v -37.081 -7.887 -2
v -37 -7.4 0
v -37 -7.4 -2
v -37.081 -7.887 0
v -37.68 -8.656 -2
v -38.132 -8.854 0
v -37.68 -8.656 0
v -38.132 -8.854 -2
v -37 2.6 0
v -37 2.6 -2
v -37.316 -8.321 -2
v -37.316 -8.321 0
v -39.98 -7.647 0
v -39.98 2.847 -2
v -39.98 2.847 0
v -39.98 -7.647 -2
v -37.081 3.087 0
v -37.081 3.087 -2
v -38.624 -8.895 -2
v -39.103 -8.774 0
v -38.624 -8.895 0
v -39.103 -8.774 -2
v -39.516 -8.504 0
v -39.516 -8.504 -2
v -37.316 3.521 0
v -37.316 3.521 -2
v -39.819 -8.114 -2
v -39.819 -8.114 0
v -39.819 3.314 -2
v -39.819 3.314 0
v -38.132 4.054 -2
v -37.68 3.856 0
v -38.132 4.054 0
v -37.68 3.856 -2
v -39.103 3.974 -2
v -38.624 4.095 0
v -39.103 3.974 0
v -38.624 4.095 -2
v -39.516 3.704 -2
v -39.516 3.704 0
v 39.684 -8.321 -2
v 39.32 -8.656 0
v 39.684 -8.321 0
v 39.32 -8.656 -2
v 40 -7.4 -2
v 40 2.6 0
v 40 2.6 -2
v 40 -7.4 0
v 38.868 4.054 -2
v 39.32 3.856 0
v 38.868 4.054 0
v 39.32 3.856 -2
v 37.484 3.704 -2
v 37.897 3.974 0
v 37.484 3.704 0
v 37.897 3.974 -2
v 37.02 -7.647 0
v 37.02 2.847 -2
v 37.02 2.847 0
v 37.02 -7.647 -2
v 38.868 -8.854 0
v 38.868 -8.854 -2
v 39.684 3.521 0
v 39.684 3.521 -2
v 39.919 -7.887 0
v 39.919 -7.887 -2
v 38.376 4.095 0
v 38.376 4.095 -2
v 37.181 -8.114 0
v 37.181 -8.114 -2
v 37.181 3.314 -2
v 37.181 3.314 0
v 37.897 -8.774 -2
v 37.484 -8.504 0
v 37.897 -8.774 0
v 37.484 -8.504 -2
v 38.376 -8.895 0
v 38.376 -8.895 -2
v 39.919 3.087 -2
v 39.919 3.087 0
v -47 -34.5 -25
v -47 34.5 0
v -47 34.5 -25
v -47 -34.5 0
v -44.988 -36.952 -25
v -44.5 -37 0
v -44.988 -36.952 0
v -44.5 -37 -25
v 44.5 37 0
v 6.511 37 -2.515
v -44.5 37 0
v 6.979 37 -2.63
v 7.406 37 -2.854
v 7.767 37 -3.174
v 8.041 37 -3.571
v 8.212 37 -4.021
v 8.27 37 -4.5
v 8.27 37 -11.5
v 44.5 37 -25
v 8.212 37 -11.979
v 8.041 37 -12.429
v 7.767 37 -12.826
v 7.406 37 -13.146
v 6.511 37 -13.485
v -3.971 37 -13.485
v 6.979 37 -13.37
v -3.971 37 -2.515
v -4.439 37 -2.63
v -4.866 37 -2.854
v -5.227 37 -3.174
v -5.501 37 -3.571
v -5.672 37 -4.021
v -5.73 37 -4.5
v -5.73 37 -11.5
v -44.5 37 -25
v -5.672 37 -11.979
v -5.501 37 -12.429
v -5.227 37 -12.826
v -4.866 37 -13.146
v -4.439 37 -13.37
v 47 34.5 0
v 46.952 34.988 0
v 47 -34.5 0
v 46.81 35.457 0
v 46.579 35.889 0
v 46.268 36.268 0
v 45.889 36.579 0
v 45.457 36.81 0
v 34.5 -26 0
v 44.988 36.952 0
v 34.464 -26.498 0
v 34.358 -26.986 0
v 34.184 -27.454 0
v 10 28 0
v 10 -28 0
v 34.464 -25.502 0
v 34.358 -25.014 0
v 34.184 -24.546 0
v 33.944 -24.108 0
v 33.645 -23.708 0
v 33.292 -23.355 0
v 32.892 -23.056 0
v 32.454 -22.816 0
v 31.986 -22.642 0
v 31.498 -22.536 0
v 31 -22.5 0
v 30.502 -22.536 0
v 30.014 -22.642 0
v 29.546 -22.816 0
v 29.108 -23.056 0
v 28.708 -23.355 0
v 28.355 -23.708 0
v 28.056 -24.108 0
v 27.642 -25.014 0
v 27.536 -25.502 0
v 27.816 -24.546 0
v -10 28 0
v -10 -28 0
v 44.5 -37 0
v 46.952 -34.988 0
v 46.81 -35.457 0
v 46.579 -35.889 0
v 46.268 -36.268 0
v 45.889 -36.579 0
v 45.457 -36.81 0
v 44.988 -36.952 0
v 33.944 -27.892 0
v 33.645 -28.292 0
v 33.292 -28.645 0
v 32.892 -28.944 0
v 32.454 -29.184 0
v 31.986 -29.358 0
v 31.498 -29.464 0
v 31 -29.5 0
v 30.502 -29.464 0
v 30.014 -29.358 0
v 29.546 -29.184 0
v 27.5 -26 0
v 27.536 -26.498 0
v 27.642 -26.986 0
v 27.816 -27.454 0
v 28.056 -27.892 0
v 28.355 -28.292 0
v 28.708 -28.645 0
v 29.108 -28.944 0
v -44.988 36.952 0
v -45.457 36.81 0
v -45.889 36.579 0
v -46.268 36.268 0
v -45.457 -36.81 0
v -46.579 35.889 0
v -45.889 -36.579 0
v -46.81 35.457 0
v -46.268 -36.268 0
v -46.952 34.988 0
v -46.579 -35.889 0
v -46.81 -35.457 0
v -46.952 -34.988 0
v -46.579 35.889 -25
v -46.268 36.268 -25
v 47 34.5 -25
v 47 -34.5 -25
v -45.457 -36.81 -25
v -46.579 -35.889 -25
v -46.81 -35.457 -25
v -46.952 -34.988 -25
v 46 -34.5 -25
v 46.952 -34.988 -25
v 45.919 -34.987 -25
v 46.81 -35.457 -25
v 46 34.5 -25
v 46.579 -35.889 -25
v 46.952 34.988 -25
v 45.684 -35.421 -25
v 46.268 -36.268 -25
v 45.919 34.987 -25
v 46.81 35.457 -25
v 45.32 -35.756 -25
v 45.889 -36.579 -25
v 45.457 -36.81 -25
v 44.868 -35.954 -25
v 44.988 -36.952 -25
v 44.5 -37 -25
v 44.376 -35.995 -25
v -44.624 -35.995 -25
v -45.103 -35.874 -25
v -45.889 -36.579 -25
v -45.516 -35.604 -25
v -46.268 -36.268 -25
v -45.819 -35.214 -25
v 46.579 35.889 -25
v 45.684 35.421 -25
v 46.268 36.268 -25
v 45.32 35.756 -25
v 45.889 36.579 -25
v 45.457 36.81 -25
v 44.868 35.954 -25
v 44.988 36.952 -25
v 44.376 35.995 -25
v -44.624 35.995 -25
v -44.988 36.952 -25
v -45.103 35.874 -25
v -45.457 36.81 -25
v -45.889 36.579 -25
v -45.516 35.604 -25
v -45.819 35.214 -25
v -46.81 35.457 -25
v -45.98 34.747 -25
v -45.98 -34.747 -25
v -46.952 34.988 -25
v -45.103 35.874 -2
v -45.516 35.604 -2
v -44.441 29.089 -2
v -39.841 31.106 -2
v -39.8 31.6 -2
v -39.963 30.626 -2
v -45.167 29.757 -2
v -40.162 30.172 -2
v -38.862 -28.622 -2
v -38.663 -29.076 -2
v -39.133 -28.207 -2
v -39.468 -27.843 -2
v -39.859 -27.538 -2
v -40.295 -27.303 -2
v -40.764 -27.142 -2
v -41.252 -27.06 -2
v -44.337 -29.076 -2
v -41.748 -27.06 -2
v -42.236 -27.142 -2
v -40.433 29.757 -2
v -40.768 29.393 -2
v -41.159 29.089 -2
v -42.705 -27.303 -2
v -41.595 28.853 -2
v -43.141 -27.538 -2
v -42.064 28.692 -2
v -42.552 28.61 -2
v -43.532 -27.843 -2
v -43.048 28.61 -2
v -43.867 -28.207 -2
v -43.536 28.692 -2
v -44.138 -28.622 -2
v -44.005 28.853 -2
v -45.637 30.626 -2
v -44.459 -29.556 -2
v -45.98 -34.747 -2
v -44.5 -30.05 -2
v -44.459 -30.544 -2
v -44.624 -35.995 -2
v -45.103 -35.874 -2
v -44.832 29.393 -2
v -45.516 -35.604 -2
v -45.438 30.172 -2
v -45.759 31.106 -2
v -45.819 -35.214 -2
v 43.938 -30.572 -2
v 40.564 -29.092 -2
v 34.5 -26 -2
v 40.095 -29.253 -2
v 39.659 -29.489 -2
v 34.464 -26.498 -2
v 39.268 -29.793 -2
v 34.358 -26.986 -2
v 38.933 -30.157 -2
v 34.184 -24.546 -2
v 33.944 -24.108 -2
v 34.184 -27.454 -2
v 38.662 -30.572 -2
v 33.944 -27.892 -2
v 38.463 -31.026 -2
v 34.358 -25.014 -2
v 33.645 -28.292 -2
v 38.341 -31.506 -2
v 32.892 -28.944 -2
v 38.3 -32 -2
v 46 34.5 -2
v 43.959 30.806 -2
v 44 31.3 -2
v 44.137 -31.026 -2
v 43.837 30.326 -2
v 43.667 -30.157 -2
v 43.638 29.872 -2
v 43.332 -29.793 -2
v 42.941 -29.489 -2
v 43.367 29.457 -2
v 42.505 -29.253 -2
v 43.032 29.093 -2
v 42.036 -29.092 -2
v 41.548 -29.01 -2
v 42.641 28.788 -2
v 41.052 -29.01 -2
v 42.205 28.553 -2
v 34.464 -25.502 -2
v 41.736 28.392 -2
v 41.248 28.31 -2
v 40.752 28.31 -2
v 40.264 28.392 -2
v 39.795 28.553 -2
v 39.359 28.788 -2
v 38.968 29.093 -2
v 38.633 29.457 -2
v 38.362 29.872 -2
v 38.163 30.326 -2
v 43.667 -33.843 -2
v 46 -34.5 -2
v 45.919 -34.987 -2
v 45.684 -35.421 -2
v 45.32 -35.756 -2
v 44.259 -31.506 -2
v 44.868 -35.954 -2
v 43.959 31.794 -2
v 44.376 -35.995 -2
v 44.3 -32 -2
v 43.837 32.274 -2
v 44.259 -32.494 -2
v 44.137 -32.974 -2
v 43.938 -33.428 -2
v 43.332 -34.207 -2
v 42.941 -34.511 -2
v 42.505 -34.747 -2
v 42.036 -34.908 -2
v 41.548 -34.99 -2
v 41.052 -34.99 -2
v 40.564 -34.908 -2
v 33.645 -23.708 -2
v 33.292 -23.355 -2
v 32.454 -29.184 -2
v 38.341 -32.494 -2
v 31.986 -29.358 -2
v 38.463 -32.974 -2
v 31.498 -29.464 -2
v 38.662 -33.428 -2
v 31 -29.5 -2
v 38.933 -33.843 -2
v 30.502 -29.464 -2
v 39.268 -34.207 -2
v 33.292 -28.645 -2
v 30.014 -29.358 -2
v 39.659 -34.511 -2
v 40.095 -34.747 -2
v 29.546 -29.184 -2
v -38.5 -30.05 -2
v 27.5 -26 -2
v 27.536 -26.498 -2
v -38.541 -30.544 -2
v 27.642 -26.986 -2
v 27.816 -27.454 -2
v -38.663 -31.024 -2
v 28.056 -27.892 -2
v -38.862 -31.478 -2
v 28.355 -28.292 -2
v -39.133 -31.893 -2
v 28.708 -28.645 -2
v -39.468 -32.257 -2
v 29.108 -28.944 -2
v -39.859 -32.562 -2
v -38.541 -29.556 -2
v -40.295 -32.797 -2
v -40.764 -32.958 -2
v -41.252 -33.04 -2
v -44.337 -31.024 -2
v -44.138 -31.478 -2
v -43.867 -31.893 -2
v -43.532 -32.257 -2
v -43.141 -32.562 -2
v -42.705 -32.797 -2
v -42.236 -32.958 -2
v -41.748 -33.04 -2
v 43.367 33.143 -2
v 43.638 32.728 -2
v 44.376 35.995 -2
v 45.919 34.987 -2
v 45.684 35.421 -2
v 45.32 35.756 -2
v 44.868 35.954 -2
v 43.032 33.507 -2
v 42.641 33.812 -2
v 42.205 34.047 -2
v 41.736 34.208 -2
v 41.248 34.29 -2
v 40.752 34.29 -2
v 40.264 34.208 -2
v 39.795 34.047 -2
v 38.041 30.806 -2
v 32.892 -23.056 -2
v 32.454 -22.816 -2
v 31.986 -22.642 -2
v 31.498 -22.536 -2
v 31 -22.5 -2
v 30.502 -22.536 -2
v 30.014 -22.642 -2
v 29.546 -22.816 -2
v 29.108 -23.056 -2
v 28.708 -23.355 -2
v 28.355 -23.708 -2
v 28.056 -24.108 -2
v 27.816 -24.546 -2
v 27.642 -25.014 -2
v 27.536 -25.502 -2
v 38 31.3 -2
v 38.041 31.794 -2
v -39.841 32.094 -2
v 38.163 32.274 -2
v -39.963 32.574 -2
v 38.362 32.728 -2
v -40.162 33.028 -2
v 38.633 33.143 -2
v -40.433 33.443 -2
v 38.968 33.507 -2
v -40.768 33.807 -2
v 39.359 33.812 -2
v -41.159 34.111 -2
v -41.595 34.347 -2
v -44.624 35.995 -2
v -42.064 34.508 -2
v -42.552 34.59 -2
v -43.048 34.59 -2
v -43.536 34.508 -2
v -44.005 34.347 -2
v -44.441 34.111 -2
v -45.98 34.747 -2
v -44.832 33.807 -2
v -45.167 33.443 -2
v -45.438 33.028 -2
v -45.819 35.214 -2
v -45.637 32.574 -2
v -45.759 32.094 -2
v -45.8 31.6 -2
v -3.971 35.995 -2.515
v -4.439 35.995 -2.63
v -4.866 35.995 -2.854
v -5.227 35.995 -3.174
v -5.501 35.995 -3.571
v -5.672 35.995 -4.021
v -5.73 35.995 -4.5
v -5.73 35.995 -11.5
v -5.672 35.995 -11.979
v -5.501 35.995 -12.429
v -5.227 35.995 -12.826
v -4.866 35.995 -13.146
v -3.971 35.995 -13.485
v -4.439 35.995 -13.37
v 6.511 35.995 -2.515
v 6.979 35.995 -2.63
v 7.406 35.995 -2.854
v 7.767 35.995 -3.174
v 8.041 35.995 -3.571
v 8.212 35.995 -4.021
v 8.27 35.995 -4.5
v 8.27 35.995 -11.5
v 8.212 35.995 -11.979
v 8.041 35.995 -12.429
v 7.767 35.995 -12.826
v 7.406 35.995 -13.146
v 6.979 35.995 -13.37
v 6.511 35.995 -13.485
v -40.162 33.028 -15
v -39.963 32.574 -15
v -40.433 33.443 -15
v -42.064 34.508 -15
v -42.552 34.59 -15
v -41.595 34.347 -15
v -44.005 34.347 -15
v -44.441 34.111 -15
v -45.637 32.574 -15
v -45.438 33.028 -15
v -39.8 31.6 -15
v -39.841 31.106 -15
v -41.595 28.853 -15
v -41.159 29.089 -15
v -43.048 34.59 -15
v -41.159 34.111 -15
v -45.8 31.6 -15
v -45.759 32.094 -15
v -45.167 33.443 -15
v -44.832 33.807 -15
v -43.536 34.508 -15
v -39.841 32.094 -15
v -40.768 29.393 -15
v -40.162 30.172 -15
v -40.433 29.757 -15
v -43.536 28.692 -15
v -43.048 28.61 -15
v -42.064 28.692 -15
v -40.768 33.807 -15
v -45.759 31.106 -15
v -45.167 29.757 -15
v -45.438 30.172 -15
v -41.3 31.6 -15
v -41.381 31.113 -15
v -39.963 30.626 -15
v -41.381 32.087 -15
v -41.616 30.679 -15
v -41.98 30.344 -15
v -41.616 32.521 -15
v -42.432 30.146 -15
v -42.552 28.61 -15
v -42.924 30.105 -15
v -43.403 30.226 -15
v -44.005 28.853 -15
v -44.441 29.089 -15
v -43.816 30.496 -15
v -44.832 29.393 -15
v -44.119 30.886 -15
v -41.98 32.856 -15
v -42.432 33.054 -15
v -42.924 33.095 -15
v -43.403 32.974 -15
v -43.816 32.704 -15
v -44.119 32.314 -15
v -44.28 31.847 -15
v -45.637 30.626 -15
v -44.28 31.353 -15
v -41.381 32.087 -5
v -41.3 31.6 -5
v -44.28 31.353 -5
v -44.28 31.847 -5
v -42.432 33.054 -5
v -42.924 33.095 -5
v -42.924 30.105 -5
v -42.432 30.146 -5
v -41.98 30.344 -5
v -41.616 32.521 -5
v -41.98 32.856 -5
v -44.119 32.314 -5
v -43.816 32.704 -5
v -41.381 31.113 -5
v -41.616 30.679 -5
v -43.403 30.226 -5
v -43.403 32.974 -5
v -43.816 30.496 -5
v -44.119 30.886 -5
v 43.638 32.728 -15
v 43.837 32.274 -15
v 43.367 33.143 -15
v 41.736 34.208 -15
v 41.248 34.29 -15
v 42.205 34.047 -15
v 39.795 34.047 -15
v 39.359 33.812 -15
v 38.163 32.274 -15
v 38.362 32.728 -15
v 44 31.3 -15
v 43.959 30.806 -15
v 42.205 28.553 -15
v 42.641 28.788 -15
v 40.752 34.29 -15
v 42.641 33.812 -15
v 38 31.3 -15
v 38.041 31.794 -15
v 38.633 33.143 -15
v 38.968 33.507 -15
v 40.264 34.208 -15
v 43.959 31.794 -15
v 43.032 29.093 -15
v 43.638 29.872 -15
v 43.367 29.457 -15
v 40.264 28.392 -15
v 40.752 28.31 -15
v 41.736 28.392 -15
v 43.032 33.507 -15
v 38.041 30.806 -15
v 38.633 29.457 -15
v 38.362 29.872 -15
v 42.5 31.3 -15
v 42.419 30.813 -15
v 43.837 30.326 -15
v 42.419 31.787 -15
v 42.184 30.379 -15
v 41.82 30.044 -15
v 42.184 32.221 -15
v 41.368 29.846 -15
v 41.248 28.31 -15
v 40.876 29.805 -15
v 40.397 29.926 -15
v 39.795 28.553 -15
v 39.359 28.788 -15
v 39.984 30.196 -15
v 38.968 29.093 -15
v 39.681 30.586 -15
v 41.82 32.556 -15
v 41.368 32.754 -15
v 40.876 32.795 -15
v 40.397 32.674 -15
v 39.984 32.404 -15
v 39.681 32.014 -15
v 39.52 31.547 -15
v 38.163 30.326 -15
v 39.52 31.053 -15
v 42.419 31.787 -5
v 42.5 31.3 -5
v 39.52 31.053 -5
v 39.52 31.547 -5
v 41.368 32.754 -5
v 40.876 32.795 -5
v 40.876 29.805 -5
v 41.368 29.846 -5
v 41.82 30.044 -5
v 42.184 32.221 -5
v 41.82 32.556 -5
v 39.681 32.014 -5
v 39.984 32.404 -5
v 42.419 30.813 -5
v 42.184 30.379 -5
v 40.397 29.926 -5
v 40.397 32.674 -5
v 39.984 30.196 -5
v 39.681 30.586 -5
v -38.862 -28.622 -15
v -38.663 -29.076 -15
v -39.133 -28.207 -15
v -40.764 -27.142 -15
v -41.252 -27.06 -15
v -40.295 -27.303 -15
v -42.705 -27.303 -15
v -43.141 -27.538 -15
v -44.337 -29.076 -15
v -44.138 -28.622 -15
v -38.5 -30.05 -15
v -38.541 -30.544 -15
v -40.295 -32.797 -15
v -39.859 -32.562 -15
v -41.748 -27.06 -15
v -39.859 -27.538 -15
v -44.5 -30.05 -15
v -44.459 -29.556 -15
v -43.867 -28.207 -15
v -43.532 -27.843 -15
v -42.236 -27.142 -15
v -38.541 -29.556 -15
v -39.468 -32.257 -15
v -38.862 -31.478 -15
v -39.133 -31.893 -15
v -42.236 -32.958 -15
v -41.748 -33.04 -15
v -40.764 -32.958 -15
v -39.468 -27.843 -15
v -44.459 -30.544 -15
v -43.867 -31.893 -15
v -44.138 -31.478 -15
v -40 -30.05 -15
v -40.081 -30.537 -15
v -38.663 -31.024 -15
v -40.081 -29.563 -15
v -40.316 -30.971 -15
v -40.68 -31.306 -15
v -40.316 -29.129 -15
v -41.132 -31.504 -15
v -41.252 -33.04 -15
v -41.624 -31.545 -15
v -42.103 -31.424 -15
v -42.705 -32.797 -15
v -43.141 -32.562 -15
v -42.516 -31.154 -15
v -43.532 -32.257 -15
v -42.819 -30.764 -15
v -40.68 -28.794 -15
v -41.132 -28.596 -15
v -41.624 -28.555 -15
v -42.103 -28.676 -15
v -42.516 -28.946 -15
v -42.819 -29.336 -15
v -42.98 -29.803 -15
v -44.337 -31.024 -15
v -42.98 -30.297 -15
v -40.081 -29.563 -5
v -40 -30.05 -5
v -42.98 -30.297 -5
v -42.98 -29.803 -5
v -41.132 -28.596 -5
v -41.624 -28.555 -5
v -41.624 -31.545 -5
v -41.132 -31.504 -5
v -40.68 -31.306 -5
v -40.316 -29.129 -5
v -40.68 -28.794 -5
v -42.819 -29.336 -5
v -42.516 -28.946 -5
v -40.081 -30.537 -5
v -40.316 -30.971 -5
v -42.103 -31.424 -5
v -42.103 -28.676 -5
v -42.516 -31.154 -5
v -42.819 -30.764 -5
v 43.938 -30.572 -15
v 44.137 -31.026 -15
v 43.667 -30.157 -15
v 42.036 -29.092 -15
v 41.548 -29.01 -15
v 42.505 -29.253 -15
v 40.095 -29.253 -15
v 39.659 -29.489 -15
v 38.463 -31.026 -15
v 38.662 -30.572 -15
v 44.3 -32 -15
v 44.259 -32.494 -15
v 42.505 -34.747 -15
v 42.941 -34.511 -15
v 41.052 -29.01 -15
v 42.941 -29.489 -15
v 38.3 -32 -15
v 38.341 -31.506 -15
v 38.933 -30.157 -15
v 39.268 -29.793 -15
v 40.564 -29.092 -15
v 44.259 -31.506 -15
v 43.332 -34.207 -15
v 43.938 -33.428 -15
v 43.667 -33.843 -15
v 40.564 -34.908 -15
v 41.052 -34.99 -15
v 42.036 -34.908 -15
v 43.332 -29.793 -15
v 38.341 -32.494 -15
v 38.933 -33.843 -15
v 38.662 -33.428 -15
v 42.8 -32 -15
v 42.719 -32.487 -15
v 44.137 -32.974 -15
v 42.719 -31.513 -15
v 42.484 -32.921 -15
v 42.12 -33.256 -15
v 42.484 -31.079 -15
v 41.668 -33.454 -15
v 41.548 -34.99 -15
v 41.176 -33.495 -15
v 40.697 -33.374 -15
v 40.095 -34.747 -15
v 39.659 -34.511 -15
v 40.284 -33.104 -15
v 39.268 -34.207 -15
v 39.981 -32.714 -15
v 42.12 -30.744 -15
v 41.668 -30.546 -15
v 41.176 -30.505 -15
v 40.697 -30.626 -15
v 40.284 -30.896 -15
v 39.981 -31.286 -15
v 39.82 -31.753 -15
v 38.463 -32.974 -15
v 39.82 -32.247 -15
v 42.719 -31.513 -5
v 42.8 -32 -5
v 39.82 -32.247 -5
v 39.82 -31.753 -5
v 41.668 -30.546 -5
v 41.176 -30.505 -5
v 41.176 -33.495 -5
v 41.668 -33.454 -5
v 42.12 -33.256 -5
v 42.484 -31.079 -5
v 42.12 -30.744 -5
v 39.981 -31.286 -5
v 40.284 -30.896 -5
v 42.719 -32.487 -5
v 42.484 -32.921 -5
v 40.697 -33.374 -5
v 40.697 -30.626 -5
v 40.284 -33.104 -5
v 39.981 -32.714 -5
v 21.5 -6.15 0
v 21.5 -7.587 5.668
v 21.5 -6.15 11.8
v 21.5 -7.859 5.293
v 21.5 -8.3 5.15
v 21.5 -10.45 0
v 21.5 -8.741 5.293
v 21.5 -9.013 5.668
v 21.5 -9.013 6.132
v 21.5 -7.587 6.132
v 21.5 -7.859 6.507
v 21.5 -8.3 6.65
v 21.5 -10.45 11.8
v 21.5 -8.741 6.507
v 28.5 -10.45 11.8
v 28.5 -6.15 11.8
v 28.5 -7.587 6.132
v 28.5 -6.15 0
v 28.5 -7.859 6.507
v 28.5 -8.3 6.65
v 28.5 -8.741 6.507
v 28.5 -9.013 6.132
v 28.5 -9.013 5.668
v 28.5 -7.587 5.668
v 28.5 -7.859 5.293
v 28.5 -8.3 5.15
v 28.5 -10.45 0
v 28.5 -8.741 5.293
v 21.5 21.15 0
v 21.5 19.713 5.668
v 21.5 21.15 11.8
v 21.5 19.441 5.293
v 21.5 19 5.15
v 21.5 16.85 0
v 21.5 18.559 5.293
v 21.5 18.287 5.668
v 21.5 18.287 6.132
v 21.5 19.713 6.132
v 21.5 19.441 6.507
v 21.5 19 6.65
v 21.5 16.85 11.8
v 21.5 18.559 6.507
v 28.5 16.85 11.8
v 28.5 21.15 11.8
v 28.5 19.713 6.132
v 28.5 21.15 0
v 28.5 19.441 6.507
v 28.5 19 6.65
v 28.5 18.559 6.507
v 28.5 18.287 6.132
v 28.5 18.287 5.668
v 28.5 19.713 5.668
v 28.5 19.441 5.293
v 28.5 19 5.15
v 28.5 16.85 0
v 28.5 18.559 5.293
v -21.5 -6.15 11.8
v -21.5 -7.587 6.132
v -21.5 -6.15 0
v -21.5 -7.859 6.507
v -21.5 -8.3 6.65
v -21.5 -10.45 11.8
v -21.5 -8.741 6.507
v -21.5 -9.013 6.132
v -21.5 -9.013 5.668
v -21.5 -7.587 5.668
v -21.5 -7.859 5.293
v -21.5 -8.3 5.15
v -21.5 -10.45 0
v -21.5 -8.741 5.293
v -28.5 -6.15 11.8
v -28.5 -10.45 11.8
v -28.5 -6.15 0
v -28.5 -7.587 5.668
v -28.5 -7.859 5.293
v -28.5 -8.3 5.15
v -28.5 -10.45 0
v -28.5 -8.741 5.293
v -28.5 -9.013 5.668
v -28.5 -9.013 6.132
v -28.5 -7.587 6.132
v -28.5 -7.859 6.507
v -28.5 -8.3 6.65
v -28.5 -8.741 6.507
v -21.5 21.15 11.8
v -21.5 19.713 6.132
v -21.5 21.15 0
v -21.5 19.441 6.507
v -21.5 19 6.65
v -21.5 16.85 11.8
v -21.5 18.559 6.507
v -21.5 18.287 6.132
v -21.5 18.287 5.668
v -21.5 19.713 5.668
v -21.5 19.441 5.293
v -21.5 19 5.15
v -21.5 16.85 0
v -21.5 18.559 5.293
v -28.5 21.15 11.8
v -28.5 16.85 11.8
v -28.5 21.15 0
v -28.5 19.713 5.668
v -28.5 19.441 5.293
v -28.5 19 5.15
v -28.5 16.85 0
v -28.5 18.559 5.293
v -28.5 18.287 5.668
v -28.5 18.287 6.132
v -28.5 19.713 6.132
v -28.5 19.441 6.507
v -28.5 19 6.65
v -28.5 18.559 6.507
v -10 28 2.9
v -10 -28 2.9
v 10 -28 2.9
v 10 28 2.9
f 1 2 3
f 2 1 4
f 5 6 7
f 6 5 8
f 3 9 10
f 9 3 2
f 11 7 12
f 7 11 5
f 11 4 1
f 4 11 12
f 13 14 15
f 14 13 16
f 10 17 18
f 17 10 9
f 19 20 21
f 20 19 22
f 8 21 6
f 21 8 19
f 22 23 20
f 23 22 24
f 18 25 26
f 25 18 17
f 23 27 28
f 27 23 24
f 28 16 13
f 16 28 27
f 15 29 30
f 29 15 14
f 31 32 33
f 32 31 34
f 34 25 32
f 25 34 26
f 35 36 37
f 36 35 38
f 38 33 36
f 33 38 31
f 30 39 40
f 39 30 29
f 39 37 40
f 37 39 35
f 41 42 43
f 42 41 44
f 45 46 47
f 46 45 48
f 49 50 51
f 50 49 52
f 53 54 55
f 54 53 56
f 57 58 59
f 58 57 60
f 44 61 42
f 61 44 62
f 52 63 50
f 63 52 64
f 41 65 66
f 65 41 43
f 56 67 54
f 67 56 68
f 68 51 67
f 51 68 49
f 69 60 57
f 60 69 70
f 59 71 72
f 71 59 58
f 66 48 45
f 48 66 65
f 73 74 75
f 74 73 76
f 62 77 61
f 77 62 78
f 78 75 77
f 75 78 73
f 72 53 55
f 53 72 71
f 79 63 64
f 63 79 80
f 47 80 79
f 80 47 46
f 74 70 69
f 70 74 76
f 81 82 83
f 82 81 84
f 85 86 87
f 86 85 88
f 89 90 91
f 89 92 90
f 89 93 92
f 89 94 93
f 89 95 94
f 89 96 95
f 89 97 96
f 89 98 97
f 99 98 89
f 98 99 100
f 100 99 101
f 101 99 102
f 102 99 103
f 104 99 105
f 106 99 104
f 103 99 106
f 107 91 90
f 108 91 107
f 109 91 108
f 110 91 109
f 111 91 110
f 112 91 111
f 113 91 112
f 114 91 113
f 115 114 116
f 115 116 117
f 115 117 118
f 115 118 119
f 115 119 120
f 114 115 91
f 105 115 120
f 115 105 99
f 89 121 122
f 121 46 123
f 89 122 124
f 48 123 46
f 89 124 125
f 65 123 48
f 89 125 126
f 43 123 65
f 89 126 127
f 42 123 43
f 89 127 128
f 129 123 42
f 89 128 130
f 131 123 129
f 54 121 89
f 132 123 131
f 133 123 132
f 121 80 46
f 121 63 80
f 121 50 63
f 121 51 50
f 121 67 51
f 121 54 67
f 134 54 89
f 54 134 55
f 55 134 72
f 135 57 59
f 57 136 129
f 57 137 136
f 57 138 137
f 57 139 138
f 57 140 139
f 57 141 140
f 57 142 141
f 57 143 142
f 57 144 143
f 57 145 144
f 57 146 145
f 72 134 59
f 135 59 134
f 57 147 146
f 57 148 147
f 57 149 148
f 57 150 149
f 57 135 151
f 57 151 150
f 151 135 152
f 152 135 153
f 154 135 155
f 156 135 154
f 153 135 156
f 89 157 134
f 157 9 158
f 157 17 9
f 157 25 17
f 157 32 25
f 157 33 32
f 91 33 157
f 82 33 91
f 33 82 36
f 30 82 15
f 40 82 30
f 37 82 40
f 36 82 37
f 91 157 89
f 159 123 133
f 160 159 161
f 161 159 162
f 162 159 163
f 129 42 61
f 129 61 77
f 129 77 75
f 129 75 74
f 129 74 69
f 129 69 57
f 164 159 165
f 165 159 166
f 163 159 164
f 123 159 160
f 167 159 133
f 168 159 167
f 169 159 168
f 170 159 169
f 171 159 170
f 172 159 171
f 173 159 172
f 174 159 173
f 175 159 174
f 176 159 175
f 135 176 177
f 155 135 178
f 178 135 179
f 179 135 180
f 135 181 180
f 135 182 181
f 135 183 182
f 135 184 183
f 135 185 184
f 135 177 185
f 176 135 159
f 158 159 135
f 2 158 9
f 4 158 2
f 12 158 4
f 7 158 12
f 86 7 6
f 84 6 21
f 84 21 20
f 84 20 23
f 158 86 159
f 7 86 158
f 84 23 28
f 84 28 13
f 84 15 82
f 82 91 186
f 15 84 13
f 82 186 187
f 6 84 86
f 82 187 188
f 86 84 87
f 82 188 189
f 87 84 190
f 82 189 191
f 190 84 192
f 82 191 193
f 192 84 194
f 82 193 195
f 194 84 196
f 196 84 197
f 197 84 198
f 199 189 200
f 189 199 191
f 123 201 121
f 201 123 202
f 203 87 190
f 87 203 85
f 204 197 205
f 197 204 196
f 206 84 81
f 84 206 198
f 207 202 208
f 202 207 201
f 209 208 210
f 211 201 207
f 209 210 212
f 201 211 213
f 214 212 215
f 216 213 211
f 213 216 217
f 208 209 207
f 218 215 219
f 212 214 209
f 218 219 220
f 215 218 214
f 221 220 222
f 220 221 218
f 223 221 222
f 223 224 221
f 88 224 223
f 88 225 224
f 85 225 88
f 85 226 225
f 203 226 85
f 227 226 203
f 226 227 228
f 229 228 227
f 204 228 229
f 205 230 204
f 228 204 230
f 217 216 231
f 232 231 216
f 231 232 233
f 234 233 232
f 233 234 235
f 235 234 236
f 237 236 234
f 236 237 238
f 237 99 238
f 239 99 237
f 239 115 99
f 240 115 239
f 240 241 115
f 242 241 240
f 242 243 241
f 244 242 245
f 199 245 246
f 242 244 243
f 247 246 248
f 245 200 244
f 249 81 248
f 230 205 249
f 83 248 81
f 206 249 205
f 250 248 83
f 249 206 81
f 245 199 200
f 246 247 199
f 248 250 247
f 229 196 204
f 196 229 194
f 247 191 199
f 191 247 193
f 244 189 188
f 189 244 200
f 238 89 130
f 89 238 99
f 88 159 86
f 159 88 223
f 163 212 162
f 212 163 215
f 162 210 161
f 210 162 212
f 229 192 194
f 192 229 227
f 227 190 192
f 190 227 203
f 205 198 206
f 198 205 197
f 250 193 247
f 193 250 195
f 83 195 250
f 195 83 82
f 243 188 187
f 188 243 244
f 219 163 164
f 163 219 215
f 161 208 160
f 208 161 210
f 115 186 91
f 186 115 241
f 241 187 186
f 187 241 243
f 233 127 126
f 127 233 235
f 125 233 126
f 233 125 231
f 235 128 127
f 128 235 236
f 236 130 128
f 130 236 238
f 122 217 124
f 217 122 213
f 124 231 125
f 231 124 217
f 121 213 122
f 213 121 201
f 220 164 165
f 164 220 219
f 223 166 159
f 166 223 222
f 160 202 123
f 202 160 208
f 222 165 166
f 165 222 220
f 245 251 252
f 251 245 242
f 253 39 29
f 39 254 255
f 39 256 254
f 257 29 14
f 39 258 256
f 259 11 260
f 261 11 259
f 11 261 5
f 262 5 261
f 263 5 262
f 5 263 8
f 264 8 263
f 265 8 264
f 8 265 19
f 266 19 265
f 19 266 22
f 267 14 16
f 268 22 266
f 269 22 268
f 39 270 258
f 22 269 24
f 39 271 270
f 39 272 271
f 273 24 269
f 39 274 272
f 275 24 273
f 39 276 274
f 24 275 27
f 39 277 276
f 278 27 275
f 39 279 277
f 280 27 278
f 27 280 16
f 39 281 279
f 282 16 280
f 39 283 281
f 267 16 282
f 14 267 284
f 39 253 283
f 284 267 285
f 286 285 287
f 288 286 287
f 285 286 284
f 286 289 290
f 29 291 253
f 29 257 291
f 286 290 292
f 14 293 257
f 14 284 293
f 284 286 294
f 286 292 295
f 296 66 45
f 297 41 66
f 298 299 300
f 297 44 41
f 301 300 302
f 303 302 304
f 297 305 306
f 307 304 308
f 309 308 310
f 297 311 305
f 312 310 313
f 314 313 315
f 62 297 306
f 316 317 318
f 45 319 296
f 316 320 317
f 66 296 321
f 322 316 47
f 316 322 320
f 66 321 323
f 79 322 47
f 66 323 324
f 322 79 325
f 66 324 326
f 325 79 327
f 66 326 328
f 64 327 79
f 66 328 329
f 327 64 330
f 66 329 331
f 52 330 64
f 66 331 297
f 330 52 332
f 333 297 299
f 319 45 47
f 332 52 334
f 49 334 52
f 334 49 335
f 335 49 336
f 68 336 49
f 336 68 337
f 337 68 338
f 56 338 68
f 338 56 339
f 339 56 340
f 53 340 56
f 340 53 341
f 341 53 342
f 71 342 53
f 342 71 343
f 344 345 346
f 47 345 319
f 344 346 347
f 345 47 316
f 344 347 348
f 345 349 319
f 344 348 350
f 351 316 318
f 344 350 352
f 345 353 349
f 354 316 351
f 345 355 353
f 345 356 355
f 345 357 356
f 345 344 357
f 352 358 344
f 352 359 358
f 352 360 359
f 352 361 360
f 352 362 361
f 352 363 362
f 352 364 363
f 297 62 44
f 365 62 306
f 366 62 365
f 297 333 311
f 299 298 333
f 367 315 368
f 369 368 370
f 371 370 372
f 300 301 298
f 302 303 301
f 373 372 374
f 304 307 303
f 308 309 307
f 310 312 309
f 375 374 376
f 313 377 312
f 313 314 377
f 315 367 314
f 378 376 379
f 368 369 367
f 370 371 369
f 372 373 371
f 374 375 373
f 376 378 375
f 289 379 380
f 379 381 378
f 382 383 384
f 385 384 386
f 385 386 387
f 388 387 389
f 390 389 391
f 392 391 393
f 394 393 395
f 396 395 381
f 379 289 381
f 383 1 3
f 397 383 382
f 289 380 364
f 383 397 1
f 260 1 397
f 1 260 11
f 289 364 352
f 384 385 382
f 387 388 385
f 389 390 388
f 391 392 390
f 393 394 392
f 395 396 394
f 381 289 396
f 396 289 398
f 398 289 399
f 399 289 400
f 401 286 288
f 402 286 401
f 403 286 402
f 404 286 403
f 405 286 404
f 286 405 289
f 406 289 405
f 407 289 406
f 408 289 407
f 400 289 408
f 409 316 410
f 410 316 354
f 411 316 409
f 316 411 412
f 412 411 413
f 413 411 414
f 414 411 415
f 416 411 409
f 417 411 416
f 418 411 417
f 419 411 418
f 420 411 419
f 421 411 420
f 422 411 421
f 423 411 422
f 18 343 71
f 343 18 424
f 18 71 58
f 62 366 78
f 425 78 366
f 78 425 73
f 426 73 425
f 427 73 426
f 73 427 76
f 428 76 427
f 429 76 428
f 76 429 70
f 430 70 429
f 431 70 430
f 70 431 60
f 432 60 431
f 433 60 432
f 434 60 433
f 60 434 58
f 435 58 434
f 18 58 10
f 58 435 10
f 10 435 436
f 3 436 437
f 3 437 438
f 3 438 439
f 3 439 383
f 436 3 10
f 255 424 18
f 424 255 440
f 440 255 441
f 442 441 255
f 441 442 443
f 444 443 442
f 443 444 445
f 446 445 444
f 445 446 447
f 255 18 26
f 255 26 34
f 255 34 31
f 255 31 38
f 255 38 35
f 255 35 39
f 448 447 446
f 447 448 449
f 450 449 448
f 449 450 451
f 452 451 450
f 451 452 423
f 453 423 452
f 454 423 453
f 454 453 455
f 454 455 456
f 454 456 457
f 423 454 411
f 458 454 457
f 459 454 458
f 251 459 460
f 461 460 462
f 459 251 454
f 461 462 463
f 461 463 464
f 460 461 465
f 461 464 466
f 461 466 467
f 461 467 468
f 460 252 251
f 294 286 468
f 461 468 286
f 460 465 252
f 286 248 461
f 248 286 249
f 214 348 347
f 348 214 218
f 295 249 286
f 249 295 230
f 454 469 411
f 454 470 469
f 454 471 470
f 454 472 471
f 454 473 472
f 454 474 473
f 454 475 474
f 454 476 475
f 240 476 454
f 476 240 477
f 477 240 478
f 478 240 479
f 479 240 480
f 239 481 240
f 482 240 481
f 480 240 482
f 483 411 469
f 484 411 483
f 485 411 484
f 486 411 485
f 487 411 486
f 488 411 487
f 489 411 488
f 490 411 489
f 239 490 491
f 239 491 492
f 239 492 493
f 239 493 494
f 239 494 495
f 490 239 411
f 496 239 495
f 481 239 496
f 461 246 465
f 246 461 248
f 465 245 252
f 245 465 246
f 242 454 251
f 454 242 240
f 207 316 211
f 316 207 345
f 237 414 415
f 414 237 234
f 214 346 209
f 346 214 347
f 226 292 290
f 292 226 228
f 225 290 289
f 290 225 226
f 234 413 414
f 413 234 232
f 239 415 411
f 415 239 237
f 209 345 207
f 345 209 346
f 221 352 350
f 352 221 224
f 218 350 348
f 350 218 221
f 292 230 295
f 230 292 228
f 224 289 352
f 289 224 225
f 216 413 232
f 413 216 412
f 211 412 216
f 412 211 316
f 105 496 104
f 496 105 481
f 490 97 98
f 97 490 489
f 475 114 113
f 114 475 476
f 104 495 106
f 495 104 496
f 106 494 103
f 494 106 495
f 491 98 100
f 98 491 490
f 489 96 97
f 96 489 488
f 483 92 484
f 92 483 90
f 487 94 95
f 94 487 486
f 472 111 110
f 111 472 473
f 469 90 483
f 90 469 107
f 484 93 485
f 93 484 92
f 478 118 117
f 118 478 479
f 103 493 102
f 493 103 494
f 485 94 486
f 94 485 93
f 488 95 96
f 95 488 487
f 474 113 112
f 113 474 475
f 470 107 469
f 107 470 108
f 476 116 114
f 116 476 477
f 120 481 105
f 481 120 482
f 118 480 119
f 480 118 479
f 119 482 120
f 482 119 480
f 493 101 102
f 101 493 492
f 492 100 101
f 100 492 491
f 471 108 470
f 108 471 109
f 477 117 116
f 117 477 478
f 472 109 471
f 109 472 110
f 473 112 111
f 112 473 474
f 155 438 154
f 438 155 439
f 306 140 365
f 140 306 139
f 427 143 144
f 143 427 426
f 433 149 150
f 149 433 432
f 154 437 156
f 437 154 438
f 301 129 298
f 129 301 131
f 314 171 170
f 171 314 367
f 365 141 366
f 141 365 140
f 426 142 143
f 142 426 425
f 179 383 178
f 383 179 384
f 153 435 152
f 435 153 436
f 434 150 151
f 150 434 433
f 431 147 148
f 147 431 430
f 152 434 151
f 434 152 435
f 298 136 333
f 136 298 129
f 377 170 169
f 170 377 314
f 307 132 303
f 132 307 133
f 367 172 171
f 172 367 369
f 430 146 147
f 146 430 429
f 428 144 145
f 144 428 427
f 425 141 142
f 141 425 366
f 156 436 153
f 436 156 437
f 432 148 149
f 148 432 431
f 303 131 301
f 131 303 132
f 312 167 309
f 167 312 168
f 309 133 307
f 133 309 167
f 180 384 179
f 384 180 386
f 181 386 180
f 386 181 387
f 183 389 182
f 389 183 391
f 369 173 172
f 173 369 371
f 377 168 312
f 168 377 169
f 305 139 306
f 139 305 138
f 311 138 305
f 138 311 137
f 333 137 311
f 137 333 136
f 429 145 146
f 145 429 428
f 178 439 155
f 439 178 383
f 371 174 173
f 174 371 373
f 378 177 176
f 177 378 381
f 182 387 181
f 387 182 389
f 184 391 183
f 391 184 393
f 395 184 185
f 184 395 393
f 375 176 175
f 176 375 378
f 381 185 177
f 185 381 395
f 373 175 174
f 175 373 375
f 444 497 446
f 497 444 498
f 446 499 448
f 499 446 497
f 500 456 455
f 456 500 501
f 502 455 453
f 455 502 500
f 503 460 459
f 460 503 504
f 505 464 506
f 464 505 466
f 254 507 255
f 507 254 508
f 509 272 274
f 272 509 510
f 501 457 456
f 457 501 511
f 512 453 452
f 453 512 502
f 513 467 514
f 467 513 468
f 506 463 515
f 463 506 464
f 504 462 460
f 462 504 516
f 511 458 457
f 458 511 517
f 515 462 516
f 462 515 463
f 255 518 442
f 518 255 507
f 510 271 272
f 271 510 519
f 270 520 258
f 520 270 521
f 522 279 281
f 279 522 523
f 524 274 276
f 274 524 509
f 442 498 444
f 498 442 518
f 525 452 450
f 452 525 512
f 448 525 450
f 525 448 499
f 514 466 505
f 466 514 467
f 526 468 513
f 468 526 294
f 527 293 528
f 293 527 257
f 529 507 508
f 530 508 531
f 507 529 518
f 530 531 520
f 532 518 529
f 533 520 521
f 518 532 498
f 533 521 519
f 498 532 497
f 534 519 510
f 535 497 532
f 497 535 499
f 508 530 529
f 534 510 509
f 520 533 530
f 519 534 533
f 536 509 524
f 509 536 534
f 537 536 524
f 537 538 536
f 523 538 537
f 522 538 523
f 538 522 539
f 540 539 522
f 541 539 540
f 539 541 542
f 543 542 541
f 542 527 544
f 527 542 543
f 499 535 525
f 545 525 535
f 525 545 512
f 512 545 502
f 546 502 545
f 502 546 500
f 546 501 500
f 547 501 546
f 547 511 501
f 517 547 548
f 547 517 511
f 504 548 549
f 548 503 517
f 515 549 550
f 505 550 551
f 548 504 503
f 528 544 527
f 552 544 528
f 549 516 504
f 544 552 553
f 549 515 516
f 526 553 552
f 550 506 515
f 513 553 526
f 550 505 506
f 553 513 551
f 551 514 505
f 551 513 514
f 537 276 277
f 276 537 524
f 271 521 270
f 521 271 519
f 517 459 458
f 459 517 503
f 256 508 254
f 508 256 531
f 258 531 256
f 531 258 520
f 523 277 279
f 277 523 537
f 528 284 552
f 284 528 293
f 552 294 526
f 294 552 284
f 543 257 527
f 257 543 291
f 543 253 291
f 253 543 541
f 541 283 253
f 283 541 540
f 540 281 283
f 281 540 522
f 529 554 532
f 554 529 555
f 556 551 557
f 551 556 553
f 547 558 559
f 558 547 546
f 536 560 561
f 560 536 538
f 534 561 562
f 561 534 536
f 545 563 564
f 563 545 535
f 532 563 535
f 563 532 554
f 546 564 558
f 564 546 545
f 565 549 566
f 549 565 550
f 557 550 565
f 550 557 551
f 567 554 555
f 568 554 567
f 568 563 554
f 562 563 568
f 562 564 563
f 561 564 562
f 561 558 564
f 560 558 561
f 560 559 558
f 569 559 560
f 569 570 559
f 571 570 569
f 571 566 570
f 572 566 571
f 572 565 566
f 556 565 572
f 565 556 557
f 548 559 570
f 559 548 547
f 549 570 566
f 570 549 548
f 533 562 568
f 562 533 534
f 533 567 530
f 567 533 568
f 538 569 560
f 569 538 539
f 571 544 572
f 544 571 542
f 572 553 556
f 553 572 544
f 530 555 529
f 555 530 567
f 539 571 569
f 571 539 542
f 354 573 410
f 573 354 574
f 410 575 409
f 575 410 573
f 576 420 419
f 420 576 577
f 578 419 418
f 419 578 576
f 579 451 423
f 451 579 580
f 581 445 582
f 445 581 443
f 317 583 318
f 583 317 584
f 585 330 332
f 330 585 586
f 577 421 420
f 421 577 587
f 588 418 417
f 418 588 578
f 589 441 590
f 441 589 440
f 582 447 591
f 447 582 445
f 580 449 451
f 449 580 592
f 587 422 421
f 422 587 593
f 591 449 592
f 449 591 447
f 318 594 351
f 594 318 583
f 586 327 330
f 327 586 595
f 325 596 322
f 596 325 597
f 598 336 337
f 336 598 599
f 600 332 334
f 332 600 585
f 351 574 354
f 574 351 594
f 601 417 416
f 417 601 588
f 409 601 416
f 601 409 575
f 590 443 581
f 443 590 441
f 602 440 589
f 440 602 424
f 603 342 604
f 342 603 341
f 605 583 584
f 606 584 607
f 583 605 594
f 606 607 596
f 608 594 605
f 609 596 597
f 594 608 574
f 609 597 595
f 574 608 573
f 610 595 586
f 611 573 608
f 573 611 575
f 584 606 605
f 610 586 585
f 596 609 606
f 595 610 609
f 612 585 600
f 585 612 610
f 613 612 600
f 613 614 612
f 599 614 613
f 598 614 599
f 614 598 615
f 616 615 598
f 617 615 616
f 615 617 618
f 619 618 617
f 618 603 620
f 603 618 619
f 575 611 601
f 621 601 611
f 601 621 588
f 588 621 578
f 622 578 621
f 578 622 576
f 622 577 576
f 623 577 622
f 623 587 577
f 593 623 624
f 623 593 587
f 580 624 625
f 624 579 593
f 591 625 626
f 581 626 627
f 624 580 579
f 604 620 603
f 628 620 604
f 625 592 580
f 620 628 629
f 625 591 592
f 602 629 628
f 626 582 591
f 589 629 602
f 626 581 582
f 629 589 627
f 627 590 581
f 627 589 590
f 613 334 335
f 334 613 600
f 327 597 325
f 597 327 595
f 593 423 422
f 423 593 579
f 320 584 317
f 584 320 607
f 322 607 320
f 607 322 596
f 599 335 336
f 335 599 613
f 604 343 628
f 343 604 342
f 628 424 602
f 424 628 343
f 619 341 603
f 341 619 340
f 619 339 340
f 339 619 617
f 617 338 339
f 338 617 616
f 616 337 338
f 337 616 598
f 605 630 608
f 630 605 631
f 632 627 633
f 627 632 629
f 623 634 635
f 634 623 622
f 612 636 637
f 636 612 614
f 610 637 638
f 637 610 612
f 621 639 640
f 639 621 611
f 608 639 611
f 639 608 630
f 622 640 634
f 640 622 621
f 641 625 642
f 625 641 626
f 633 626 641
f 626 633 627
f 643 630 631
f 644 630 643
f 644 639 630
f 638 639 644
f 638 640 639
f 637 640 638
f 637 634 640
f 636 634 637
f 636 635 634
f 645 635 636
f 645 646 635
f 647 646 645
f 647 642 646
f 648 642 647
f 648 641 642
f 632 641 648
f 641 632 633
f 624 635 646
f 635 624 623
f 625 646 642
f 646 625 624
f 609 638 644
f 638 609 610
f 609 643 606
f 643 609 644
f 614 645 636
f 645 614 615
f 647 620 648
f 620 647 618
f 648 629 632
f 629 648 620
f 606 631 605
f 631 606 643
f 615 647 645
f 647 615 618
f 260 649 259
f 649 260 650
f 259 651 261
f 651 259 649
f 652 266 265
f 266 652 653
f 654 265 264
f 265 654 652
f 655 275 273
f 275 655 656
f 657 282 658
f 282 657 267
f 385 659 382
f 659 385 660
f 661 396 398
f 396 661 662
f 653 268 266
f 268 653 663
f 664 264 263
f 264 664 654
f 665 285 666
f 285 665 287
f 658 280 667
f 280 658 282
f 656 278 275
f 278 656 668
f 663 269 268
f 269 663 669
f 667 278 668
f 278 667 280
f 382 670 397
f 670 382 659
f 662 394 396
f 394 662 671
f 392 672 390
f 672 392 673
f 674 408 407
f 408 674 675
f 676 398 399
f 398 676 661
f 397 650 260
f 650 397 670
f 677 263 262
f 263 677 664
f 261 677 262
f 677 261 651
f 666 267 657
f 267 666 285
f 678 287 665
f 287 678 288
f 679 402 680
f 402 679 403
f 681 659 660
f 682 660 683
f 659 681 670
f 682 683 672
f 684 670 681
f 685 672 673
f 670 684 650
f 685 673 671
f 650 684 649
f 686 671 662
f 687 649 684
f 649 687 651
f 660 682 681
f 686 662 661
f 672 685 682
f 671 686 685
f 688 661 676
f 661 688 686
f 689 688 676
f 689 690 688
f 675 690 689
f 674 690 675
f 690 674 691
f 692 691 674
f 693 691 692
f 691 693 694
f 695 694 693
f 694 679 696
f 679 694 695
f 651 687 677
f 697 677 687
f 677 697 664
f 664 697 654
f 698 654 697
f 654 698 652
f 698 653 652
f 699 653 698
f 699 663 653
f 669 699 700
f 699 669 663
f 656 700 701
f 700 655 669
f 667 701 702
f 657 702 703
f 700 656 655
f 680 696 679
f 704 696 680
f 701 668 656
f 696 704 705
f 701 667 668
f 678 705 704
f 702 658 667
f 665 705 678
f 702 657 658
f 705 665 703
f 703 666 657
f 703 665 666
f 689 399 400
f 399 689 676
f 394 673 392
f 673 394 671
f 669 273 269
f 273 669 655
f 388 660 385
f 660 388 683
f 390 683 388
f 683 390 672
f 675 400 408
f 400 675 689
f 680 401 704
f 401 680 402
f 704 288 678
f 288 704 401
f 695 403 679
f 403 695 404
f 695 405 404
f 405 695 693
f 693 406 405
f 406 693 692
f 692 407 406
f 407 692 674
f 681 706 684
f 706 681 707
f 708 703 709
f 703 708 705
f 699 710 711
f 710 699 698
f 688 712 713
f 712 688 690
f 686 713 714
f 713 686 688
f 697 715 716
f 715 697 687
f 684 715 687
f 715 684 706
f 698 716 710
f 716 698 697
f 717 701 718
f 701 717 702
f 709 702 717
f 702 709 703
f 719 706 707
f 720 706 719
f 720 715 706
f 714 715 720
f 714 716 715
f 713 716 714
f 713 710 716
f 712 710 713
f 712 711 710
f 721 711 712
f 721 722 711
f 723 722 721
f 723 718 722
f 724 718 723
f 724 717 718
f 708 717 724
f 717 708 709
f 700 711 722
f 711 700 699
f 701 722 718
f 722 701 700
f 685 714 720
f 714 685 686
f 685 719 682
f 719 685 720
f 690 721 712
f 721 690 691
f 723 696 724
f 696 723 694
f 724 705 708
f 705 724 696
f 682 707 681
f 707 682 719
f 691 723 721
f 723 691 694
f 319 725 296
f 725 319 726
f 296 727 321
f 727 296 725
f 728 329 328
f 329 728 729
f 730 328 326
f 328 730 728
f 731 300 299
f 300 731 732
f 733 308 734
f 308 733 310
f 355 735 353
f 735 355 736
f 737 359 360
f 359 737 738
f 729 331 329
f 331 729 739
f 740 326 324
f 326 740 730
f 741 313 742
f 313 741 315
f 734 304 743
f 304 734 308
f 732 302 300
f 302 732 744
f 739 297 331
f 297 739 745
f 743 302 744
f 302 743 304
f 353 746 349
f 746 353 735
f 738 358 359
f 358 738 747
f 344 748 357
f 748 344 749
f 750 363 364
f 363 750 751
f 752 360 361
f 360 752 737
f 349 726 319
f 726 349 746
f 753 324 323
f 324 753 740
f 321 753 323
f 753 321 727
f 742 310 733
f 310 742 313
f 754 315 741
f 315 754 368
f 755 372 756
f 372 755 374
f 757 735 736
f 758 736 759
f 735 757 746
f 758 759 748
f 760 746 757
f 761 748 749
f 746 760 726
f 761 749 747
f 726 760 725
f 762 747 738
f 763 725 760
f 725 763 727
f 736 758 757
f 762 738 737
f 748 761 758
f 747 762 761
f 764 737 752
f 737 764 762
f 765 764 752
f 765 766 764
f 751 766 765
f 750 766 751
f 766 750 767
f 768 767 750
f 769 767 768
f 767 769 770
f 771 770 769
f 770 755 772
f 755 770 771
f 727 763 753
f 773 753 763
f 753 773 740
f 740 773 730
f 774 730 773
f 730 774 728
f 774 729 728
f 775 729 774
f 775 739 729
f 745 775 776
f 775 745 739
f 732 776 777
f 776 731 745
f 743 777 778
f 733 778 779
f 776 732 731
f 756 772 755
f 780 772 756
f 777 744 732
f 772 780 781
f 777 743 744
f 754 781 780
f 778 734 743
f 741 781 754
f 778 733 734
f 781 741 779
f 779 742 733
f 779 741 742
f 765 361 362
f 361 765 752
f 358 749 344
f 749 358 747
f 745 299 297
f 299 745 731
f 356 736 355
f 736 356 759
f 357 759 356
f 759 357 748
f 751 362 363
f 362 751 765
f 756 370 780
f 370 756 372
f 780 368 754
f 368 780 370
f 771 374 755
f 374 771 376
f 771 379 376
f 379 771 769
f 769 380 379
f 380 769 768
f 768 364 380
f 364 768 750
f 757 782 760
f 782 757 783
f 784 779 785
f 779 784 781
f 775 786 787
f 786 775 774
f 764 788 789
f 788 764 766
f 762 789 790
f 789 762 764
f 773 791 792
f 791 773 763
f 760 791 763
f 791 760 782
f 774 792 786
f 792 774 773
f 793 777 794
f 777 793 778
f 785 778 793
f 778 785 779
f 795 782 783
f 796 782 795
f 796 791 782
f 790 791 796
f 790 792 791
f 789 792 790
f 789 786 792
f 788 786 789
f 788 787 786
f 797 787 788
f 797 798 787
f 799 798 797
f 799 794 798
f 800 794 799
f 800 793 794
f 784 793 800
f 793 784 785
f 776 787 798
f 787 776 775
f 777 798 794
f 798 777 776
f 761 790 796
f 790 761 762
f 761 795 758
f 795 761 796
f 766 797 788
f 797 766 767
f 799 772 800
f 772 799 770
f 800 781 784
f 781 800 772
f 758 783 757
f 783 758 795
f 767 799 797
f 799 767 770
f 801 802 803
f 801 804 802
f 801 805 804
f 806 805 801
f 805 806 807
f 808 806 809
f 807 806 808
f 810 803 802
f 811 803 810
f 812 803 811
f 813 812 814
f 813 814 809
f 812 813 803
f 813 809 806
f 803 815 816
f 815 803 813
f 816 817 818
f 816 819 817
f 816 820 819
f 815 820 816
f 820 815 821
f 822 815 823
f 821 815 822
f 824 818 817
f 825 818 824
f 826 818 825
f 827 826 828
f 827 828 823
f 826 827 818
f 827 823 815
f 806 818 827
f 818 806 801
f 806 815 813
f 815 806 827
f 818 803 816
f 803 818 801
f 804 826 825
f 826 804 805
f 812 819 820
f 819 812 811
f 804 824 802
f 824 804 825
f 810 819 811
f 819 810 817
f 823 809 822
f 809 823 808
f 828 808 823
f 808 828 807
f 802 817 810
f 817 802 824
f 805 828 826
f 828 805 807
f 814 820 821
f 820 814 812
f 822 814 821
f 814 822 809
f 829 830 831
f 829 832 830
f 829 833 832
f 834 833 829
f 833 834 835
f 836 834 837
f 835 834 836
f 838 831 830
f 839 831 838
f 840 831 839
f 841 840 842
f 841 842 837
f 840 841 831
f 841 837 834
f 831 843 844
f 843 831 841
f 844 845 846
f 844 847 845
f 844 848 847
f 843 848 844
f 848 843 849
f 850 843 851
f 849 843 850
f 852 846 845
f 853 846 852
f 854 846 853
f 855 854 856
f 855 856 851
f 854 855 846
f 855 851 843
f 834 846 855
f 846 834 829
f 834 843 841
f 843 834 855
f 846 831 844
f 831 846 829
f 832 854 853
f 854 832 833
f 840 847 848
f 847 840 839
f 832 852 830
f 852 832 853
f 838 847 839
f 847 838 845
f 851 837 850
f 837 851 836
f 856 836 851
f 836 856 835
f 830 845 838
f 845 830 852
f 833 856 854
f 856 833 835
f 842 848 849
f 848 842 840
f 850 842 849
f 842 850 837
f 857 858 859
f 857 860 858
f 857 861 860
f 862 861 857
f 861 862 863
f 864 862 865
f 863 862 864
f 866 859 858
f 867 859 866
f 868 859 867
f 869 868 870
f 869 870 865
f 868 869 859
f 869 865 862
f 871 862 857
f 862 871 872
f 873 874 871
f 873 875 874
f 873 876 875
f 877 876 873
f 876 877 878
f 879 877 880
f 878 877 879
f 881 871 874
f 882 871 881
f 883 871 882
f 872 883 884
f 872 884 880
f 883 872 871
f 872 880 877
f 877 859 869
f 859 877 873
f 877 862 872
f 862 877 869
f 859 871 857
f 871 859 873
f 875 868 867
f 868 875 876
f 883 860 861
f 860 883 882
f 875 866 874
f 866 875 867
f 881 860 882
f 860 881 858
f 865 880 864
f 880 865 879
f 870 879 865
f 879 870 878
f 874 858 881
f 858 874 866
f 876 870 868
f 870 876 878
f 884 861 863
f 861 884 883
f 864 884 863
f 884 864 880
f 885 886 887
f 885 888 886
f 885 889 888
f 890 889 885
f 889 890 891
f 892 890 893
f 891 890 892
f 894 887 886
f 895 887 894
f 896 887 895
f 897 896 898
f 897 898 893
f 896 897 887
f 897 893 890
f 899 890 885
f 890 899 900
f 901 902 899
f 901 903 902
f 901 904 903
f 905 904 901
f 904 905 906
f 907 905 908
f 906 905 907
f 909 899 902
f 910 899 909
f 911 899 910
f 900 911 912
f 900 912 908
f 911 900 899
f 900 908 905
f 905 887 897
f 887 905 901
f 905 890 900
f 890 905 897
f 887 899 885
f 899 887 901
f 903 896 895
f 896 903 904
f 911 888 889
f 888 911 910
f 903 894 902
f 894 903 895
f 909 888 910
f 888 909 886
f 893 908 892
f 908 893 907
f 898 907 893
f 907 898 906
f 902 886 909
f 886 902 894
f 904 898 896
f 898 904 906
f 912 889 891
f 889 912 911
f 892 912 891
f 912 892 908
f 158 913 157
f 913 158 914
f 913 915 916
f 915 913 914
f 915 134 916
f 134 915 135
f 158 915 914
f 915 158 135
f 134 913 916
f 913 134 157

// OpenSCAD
servoOffset=57;
servoScrewOffset=27.3;
servoScrewDia=1.5;
servoWidth=22.5;
servoThickness=11.8;
servoAxisOffset=22.5/2-5.9;
clearance=0.5;
plateOuterDistance=28;

HousingInnerHeight=25;
HousingInnerWidth=92;
HousingInnerLength=72;
HousingRoundness=5;
thickness=2;


plateXX=20;
plateYY=20;
plateThickness=1;
foamThickness=2;
$fs=0.5;
$fa=2;

// Housing
housing();

// Plate support
translate([-plateXX/2,-plateOuterDistance,0])cube([plateXX,2*plateOuterDistance,servoThickness/2-plateThickness-foamThickness]);

// Servo mount
servoMount();
mirror([1,0,0]) servoMount();
module servoMount(){
    for(i=[-1,1])translate([servoOffset/2-7/2,i*servoScrewOffset/2+servoAxisOffset,servoThickness/2])difference(){
        cube([7,servoScrewOffset-servoWidth-clearance,servoThickness],center=true);
        rotate([0,90,0])cylinder(d=servoScrewDia,h=8,center=true);
    }
}

module housing() {
    xOffset=(HousingInnerWidth-(HousingRoundness-thickness))/2;
    yOffset=(HousingInnerLength-(HousingRoundness-thickness))/2;
    PcbTop=-15;
    
    difference() {
        hull() for(ix=[-1,1])for(iy=[-1,1])translate([ix*xOffset,iy*yOffset,-HousingInnerHeight])cylinder(d=HousingRoundness,h=HousingInnerHeight);
        
        // inner
        hull() for(ix=[-1,1])for(iy=[-1,1])translate([ix*xOffset,iy*yOffset,-HousingInnerHeight-thickness])cylinder(d=HousingRoundness-thickness,h=HousingInnerHeight);
            
        // Servo cable holes
        for(ix=[-1,1])hull()for(yy=[0,10])translate([ix*(servoOffset/2+10),servoAxisOffset-servoWidth/2-3/2+yy,0])cylinder(d=3,h=thickness*3,center=true);
            
        // USB Hole
        hull()for(ix=[-1,1])for(iy=[-1,1])translate([ix*10/2+2.54/2,yOffset,iy*7/2+PcbTop+7])rotate([90,0,0])
            cylinder(d=4,h=3*thickness,center=true);
        
        // Button
        translate([HousingInnerWidth/2-15,-(HousingInnerLength/2-10),0])cylinder(d=7,h=3*thickness,center=true);
    }
    
    // screws
    screwXX=91/2-1.5;
    screwYY=70/2-1.5;
    pos=[
    [-(screwXX-1.2) ,(screwYY-1.9)],
    [(screwXX-3)    ,(screwYY-2.2)],
    [-(screwXX-2.5) ,-(screwYY-3.45)],
    [(screwXX-2.7)  ,-(screwYY-1.5)]];
    for(i=[0:3])translate([pos[i][0],pos[i][1],PcbTop])difference(){
        cylinder(d=6,h=-PcbTop-thickness);
        translate([0,0,-3])cylinder(d=3,h=-PcbTop-thickness);
    }
}




//plate();
module plate() {
thickness=plateThickness;
translate([0,0,servoThickness/2])union(){
    difference() {
        translate([-plateXX/2-thickness,5,-(thickness+foamThickness)])cube([plateXX+2*thickness,plateYY+2*thickness,thickness+foamThickness]);
        translate([-plateXX/2,5+thickness,-foamThickness])cube([plateXX,plateYY,thickness+foamThickness]);
    }
    
    difference(){
        translate([-3-plateXX/2-thickness,5,-(thickness+foamThickness)])cube([3,plateYY+2*thickness,2*(thickness+foamThickness)]);
        //14, 8
        translate([-plateXX/2-thickness,8,0])rotate([0,90,0])cylinder(d=1,h=3*3,center=true);
        translate([-plateXX/2-thickness,14,0])rotate([0,90,0])cylinder(d=1,h=3*3,center=true);
    }
}
}
